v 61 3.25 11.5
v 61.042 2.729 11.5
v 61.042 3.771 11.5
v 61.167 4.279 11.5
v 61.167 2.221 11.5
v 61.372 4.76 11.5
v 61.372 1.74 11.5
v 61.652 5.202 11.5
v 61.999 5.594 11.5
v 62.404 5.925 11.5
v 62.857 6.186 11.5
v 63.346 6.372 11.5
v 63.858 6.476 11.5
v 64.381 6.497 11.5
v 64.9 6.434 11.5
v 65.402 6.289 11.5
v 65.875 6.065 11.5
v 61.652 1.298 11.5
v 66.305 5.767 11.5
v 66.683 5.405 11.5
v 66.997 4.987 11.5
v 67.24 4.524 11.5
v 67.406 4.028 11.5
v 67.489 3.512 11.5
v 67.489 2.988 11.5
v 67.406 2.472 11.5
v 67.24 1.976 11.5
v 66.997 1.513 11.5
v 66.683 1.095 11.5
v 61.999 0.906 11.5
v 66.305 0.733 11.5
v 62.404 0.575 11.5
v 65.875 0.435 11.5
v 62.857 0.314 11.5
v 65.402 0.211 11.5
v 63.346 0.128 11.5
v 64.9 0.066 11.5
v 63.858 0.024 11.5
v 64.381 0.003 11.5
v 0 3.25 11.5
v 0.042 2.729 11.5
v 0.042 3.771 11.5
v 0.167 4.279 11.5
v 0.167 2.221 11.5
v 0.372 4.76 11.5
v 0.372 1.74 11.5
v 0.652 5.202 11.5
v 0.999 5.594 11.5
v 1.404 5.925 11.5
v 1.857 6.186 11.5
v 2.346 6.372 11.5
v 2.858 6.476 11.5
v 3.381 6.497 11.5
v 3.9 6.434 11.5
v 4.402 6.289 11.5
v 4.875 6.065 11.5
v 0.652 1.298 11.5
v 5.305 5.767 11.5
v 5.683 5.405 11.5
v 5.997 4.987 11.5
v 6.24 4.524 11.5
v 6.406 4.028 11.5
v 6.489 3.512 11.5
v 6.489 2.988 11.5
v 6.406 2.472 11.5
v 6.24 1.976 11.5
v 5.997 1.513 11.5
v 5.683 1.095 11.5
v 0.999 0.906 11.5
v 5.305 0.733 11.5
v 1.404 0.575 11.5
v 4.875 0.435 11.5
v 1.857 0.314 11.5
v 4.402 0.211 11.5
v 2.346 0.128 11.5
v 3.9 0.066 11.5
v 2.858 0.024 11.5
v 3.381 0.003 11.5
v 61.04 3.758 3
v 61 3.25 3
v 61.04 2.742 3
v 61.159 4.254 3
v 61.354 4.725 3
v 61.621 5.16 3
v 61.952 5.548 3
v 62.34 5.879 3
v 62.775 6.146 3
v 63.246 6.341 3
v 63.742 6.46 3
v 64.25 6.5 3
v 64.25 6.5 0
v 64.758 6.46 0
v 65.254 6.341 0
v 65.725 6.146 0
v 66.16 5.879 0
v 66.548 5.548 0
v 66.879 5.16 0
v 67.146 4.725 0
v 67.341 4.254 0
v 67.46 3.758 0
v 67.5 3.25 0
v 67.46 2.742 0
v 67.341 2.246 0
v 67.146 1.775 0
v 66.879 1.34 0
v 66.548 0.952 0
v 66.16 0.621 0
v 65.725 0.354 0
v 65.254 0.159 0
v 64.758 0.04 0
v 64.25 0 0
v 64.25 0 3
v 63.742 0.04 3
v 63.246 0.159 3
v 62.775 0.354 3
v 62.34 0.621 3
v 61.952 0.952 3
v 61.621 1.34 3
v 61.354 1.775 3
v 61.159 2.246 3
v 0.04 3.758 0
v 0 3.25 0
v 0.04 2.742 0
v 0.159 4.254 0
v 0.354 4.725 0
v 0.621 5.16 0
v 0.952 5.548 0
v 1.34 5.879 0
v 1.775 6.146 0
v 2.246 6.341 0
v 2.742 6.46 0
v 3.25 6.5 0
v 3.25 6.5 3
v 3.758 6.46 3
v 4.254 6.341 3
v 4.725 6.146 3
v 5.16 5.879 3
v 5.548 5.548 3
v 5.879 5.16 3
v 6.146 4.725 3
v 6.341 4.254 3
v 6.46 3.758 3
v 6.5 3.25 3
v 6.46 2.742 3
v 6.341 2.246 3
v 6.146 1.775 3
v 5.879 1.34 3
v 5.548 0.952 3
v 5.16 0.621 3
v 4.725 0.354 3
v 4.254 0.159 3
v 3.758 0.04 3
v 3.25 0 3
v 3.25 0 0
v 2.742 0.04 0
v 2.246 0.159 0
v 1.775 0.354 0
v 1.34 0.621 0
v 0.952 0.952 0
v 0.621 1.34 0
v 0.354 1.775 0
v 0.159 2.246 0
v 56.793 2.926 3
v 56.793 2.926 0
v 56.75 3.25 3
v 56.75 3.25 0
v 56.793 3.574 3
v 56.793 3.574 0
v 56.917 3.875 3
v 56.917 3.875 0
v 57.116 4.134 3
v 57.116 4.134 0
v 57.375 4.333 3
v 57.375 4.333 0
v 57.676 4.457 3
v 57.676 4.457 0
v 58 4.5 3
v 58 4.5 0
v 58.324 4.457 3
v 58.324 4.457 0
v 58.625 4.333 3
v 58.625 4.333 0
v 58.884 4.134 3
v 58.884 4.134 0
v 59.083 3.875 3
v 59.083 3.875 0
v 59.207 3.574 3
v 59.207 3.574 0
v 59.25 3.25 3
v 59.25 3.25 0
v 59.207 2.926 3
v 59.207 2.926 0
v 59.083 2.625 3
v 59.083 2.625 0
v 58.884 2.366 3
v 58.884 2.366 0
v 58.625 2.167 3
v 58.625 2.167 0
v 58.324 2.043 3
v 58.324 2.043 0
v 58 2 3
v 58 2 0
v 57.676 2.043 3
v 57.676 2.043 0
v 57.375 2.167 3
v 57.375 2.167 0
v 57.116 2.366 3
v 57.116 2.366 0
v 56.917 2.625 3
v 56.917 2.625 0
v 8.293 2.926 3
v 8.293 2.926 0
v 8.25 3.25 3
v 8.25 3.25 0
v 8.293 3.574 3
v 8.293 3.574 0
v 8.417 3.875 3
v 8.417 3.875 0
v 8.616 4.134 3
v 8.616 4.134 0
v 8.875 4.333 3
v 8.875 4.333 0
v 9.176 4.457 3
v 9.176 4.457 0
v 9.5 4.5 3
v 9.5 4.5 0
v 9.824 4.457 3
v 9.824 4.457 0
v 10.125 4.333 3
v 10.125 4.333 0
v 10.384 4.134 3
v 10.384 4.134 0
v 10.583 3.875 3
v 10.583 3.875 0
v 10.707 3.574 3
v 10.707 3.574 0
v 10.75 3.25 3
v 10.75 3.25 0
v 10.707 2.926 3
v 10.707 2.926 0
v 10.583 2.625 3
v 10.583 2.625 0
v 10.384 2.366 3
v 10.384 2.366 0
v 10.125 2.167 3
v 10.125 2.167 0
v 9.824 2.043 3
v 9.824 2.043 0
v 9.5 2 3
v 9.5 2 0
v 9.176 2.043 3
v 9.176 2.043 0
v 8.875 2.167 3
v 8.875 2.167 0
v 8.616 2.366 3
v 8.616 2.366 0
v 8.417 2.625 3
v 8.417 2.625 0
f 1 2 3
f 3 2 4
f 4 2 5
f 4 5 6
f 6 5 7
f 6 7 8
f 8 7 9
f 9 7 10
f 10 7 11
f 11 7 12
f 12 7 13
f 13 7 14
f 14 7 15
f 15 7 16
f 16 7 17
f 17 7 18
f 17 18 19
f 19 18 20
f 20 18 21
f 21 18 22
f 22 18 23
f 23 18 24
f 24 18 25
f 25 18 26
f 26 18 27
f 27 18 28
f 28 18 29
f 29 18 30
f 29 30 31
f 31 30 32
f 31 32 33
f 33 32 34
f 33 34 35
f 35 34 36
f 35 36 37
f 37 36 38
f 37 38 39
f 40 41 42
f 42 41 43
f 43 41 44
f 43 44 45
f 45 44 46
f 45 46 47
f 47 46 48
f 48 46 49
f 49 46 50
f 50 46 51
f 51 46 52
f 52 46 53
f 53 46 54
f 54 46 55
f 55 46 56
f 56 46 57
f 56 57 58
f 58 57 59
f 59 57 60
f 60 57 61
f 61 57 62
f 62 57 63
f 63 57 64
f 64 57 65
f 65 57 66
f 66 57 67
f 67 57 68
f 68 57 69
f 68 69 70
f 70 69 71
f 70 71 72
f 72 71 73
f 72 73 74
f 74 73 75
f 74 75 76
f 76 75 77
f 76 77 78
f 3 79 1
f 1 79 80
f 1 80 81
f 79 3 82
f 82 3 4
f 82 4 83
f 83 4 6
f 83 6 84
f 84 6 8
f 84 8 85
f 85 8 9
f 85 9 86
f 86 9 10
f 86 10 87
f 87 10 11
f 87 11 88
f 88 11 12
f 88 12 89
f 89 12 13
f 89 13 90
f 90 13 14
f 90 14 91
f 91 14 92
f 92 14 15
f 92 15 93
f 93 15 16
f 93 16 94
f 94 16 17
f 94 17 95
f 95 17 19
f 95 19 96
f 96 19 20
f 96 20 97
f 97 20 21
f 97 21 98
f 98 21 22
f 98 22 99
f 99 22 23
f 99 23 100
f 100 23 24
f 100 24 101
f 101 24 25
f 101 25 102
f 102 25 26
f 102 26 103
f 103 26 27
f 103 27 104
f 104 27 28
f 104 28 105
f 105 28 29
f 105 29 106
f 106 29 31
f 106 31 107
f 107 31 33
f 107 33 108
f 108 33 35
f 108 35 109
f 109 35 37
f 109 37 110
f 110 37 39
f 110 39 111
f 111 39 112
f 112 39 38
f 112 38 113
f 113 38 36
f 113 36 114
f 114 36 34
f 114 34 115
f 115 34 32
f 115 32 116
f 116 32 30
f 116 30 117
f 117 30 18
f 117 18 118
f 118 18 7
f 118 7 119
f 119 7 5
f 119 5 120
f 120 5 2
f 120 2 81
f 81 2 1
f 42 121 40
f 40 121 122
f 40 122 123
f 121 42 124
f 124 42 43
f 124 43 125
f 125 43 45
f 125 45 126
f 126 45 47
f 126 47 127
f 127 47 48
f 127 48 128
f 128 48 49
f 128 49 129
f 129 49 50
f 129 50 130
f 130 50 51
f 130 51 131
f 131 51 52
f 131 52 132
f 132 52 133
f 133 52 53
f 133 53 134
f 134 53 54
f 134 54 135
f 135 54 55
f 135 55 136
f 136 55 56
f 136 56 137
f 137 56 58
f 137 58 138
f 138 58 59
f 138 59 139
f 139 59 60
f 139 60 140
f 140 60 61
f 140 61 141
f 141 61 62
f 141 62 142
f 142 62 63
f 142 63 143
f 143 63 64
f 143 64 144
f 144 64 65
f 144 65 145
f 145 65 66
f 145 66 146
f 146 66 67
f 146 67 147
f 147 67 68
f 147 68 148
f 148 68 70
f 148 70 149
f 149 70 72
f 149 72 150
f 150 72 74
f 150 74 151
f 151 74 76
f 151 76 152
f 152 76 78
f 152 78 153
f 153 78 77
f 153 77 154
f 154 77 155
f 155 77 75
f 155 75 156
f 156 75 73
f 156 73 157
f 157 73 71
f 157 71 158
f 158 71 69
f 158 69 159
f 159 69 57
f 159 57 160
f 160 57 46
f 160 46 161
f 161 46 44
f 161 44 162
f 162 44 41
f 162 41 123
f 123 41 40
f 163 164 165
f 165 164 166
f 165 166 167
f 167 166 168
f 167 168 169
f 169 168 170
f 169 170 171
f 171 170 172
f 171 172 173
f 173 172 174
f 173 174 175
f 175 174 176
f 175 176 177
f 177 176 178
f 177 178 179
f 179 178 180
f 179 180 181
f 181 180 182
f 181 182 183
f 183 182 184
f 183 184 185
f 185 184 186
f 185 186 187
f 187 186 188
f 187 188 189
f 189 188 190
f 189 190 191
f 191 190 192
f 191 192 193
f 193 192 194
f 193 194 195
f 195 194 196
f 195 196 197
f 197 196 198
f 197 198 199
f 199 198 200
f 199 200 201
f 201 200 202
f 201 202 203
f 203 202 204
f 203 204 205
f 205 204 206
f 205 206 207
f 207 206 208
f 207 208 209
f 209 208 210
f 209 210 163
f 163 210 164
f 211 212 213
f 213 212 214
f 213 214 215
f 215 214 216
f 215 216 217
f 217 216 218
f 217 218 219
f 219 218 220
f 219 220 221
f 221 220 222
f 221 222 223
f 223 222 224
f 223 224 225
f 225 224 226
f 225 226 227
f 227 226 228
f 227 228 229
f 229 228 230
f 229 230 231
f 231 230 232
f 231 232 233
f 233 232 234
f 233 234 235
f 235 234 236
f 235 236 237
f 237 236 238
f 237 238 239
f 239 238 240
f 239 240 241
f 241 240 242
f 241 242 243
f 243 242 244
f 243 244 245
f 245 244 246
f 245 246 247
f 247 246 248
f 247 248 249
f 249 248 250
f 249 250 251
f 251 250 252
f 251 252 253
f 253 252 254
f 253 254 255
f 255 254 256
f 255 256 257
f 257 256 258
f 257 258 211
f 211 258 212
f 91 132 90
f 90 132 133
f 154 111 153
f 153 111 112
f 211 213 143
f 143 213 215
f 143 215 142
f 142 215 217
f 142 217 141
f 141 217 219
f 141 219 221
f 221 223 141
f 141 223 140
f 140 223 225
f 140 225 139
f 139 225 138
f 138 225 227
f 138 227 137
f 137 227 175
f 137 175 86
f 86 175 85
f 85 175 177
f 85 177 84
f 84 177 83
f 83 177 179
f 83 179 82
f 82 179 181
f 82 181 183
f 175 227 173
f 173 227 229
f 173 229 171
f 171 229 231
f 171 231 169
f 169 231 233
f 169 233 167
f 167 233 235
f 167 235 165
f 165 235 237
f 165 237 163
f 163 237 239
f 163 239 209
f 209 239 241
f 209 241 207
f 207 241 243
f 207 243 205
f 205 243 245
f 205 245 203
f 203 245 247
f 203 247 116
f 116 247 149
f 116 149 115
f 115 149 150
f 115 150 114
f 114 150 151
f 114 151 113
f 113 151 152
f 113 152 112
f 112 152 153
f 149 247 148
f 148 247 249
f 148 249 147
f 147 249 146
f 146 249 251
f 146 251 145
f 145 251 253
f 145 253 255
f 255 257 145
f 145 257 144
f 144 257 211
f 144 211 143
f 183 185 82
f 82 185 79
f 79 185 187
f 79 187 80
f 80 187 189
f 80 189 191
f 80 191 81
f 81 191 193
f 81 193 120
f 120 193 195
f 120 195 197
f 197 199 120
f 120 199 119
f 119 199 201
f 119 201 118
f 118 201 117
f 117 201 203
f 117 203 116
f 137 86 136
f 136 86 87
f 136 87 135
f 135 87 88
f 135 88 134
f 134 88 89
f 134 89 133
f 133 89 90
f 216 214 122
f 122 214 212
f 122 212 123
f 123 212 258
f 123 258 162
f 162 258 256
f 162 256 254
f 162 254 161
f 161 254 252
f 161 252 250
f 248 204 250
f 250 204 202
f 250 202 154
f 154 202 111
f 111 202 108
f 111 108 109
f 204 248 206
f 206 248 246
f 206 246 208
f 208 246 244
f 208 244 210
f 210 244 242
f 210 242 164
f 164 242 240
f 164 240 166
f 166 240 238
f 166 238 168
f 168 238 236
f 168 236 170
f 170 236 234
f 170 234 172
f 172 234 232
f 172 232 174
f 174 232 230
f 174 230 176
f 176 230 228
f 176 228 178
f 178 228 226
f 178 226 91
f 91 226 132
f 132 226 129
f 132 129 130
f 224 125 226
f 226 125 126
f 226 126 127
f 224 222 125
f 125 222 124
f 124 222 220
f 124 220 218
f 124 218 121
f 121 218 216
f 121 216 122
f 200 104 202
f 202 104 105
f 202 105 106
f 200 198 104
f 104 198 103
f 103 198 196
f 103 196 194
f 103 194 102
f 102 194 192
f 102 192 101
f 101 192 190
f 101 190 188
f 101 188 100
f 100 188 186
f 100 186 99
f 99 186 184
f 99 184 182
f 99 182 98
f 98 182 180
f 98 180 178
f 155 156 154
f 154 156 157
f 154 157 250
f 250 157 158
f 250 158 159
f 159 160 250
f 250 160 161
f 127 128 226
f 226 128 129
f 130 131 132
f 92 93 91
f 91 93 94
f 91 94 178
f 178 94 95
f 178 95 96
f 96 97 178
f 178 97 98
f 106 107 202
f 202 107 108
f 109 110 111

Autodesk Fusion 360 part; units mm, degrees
sketch "Boceto1" plane through (0, 0, 0) normal (0, 0, 1) x (1, 0, 0)
  line L0 (3.25, 0) -> (64.25, 0)
  line L1 (64.25, 6.5) -> (3.25, 6.5)
  circle A0 centre (9.5, 3.25) radius 1.25
  circle A1 centre (3.25, 3.25) radius 3.25
  circle A2 centre (64.25, 3.25) radius 3.25
  circle A3 centre (58, 3.25) radius 1.25
  dimension "d12" = 2.5
  dimension "d14" = 6.5
extrude "Extruir1" add sketch "Boceto1" along normal blind 3 contours L0 L1 A1 A2
extrude "Extruir2" add sketch "Boceto1" along normal blind 10.5 contours A1
extrude "Extruir3" add sketch "Boceto1" along normal blind 10.5 contours A2
extrude "Extruir4" add 1 faces at (3.7107, 2.452, 10.5) along direction (0, 0, 1) blind 1
extrude "Extruir5" add 1 faces at (63.0857, 4.3303, 10.5) along direction (0, 0, 1) blind 1
